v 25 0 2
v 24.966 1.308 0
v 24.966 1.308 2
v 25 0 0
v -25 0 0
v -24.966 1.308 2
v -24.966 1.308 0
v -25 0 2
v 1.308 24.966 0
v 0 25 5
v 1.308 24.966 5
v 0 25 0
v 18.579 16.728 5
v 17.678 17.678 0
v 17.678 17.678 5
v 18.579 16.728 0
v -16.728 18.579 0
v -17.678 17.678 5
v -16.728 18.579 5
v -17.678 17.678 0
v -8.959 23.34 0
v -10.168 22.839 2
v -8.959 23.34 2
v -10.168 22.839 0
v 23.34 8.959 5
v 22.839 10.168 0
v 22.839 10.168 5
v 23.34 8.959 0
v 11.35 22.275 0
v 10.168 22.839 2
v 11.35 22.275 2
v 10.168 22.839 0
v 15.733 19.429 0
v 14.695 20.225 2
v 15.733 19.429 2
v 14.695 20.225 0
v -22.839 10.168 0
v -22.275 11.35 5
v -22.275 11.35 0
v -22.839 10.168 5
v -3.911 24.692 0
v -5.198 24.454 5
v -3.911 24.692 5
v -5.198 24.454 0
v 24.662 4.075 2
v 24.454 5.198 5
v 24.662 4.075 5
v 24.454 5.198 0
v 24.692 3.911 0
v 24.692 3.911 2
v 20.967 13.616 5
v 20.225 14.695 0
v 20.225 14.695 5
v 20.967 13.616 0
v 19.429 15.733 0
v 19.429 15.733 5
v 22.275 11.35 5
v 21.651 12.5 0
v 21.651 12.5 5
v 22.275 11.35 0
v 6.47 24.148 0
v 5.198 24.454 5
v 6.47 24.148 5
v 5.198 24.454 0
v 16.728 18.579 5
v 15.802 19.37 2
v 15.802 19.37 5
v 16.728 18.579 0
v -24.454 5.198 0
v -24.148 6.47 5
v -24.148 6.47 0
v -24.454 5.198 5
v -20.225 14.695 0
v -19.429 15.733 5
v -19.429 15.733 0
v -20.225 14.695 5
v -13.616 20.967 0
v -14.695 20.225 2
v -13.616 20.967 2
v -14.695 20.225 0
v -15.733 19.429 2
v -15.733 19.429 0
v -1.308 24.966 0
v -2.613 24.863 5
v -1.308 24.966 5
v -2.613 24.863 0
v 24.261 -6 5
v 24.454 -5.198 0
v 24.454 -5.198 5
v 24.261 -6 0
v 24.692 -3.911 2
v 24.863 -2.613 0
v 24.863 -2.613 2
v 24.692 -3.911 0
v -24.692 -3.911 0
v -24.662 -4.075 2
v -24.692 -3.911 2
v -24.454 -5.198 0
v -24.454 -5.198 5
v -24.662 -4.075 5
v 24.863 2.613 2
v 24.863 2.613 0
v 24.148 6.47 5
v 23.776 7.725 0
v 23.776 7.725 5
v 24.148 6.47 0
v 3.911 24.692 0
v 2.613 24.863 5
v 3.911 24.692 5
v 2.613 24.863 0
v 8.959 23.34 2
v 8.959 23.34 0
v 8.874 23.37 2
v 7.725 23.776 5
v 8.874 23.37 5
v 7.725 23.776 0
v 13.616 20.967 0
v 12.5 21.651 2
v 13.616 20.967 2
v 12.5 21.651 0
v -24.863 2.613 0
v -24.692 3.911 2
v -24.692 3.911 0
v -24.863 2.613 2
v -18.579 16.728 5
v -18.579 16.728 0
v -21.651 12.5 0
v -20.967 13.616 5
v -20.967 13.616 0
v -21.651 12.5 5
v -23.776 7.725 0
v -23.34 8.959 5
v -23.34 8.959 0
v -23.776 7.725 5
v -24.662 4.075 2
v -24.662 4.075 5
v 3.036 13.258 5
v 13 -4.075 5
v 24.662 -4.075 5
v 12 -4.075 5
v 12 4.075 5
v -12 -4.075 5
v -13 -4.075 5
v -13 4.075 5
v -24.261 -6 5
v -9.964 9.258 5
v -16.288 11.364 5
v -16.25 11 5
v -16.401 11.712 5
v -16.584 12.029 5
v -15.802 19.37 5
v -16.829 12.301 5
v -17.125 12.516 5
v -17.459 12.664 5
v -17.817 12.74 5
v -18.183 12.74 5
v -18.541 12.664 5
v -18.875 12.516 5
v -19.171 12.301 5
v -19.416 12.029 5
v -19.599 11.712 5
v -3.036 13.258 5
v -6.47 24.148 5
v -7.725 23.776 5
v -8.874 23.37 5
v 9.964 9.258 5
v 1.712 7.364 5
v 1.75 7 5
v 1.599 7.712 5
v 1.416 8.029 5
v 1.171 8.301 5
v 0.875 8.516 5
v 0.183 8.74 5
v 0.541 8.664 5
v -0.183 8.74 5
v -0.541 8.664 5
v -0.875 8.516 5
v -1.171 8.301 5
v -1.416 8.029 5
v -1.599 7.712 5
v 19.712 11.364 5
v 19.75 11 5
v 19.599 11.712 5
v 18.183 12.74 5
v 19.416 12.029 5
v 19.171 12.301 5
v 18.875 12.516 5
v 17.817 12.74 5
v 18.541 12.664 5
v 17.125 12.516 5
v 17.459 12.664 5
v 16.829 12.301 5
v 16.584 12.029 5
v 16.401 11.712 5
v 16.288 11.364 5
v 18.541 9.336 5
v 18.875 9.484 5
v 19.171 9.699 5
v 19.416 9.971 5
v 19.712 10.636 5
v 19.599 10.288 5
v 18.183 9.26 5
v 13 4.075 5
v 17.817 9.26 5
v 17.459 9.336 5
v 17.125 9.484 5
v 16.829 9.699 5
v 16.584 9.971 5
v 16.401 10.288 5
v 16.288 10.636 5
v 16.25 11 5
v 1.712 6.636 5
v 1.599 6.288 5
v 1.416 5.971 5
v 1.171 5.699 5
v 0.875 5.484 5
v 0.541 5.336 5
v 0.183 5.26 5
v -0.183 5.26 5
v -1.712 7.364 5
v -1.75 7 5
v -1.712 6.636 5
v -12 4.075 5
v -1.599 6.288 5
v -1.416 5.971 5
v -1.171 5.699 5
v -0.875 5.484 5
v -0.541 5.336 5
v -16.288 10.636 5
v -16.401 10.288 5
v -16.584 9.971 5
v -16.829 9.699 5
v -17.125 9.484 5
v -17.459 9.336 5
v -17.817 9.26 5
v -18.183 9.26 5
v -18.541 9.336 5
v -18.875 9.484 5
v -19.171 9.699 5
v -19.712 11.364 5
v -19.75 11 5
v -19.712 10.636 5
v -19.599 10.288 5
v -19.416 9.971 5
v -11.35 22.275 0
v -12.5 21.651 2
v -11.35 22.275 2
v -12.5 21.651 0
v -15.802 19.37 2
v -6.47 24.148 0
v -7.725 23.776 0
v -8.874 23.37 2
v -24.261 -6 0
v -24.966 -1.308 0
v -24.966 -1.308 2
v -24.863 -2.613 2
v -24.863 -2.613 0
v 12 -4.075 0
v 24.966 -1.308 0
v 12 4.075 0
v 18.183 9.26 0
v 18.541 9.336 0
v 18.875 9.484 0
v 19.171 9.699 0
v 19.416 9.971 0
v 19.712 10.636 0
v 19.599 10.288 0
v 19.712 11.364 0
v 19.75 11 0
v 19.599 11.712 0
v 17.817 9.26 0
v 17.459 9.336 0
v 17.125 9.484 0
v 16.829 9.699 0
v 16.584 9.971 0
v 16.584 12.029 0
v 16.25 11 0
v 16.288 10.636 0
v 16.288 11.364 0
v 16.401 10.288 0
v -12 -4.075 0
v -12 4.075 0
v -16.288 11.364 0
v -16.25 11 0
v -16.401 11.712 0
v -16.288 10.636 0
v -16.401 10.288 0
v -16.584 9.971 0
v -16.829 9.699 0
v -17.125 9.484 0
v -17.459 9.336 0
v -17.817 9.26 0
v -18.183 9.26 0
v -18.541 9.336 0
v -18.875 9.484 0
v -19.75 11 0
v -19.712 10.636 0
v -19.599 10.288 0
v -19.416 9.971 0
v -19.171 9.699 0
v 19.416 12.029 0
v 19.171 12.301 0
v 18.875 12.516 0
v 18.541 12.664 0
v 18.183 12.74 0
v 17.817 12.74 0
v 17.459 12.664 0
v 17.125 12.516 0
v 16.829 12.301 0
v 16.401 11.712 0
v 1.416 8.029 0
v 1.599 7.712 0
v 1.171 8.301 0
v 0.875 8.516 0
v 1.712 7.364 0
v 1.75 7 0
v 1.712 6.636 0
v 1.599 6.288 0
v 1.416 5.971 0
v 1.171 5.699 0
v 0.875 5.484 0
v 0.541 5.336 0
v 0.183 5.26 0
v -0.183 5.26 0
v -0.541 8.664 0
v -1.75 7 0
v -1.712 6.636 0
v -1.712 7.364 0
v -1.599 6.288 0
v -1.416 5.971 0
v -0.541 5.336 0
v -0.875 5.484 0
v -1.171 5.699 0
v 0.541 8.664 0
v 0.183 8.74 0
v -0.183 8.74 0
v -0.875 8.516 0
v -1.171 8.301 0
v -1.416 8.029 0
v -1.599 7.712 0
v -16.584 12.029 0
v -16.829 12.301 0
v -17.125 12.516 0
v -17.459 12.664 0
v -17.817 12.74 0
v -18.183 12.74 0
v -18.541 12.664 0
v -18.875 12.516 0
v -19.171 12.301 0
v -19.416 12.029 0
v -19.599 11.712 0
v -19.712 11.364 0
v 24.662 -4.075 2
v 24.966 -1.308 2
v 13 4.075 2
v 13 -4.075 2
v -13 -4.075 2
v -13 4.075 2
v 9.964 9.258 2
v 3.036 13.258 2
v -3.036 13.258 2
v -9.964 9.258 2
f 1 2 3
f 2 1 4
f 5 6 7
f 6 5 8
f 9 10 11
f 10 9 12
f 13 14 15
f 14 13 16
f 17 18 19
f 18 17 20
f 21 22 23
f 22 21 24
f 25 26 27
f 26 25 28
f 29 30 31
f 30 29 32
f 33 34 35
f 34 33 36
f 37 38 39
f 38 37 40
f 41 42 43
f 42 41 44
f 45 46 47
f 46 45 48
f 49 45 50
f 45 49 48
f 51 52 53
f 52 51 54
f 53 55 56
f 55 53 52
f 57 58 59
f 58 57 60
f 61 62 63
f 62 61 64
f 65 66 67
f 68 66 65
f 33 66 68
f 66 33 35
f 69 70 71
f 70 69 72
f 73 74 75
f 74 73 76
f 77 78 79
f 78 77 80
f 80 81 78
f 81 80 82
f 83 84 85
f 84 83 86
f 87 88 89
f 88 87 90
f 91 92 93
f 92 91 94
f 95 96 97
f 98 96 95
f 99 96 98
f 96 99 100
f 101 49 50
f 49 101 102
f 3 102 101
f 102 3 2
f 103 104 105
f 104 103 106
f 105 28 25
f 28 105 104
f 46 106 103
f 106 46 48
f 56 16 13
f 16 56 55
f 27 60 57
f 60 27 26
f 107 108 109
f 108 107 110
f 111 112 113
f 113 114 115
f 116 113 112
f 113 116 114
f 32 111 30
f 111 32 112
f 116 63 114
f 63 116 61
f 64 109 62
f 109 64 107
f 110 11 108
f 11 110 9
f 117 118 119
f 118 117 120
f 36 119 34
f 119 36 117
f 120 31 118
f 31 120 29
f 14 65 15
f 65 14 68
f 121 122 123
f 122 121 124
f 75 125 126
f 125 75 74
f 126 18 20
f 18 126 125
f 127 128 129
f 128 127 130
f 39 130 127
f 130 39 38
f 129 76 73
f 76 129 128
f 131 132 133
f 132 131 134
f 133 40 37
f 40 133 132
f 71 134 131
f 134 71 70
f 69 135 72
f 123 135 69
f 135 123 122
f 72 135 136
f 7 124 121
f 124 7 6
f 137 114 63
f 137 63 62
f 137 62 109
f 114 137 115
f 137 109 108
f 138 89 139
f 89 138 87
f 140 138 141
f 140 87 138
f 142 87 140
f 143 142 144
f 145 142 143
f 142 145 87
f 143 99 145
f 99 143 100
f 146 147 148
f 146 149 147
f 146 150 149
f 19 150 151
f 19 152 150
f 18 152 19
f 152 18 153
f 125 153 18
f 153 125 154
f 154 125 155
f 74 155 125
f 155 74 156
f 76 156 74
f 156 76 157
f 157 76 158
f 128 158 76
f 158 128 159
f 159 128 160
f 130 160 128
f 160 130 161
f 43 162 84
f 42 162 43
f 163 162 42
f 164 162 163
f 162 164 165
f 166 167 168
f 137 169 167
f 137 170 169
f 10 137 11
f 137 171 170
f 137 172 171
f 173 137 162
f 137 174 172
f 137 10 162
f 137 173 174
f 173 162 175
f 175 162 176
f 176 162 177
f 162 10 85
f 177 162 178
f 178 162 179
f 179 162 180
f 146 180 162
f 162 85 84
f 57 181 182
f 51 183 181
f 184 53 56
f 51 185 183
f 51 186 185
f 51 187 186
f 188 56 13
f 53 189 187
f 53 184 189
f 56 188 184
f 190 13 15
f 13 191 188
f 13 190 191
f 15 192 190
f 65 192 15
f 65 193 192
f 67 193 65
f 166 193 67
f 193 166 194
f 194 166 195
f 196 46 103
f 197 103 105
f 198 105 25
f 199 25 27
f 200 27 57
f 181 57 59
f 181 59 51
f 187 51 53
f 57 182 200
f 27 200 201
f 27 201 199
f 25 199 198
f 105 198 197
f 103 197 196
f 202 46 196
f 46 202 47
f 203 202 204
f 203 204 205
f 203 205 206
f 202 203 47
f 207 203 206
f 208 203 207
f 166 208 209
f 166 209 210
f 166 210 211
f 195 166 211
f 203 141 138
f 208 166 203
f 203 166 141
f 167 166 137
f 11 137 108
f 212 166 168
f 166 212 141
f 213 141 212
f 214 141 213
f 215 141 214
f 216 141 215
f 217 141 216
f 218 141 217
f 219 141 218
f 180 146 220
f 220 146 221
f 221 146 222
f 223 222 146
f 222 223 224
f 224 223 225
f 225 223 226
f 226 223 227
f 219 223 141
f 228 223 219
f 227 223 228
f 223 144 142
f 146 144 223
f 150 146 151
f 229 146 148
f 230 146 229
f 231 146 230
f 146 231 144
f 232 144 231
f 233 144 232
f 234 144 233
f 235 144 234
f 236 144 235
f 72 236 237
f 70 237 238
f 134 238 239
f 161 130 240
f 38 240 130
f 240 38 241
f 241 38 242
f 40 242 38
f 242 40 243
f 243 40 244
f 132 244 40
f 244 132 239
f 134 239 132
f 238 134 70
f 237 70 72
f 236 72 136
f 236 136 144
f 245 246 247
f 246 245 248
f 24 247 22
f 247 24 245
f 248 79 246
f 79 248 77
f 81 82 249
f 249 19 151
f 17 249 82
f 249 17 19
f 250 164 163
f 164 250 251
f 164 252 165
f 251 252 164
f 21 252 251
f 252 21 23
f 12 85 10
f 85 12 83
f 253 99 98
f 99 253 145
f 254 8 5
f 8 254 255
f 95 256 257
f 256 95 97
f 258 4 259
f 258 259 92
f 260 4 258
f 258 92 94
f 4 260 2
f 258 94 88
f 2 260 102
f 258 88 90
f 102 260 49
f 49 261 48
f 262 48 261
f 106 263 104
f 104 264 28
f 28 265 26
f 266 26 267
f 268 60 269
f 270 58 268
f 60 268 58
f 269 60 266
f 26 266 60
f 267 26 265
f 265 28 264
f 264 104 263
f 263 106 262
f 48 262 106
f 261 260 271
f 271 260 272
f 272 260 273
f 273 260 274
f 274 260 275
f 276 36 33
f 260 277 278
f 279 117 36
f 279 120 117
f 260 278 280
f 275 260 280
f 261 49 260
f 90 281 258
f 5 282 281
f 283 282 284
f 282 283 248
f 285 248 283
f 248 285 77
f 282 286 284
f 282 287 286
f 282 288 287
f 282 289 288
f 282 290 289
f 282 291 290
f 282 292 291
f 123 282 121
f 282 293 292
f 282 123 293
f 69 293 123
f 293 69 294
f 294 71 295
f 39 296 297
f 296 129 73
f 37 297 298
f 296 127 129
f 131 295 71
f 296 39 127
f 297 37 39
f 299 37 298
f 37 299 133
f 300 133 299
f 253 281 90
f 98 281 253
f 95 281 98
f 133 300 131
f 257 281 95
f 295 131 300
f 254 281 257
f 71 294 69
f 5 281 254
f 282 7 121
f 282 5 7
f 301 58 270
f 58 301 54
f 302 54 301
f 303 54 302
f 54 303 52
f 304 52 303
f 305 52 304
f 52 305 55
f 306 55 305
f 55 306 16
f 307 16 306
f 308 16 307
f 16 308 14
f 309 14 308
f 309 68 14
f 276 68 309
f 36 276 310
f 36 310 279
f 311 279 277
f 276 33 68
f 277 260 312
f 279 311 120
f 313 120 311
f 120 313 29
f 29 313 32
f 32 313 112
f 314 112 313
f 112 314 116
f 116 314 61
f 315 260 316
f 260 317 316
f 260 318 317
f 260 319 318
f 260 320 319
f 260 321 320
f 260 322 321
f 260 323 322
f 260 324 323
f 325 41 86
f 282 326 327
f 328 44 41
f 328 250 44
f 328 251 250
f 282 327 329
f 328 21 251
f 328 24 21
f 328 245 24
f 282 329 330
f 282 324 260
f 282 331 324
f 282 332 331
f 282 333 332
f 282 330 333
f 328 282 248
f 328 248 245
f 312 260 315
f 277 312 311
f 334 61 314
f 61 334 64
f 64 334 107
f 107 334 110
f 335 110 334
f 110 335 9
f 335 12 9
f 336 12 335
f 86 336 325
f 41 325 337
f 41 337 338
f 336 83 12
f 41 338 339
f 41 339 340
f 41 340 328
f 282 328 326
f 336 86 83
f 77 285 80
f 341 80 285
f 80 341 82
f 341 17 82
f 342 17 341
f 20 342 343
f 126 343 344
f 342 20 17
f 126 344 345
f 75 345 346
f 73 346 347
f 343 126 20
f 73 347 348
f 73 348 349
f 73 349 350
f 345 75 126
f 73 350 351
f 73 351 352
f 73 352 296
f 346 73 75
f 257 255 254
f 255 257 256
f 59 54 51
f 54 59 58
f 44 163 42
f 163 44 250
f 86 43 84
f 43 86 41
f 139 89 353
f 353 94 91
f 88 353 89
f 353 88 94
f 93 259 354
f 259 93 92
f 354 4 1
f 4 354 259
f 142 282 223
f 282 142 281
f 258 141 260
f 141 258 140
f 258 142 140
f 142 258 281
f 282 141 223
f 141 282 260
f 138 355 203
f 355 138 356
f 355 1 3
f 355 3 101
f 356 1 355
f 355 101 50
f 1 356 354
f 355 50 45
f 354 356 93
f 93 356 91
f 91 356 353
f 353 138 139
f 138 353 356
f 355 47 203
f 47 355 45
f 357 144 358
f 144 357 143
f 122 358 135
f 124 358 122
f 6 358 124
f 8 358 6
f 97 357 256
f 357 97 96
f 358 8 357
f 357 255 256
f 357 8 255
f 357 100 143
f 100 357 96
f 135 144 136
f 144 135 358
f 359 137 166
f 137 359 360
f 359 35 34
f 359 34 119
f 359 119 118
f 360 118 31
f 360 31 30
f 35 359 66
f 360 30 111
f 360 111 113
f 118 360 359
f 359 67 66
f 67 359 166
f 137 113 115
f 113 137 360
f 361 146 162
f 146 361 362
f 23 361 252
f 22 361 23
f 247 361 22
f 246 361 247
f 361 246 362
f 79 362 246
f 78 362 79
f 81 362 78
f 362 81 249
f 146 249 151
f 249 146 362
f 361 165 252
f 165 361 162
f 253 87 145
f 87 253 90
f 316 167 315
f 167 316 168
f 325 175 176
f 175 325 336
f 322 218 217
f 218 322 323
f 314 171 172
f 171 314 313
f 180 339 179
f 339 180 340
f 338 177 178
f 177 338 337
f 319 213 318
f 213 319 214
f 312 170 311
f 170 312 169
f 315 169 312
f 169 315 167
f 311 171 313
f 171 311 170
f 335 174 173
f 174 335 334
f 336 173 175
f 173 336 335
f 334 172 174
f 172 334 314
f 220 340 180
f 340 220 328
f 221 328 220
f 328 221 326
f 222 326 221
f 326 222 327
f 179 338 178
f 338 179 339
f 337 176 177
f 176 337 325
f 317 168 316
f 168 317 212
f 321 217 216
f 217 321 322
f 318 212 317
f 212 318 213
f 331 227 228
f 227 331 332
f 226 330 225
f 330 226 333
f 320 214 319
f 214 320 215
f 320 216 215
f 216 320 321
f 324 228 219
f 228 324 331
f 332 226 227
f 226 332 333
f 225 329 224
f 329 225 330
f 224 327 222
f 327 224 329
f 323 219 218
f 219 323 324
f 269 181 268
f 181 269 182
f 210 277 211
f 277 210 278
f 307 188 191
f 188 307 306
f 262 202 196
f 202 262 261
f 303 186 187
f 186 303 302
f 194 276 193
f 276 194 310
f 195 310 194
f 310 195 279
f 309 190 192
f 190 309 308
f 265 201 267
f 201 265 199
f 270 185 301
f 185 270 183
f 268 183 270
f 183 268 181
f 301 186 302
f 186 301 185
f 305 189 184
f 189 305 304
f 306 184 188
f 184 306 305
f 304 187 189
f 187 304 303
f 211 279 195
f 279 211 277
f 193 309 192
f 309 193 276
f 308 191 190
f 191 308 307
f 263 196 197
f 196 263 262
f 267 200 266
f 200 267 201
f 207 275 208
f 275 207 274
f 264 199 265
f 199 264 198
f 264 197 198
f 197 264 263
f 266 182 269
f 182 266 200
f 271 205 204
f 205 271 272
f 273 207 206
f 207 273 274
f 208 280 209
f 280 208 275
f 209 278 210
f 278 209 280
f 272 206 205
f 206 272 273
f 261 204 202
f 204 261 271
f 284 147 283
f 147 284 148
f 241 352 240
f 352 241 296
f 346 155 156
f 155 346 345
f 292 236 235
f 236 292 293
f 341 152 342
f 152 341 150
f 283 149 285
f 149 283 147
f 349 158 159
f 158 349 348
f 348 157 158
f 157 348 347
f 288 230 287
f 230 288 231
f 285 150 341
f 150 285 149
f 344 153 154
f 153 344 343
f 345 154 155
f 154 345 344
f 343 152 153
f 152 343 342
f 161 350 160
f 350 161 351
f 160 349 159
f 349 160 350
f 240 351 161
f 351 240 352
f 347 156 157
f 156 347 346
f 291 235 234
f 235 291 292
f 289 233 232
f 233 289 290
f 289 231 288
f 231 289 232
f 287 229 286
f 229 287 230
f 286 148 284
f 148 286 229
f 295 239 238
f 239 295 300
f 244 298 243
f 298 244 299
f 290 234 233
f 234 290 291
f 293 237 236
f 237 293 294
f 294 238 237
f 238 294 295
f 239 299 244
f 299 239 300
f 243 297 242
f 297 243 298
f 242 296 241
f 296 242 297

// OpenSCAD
difference(){
cylinder(d=50,h=5,$fn=120);
cube([24,8.15,12],center=true);
translate([25,0,8])cube([24,8.15,12],center=true);
translate([-25,0,8])cube([24,8.15,12],center=true);
rotate([0,0,60])translate([25,0,8])
cube([24,8,12],center=true);
rotate([0,0,-60])translate([-25,0,8])
cube([24,8,12],center=true);
translate([0,-30,0])cube([54,48,12],center=true);
translate([0,7,-1])cylinder(d=3.5,h=10,$fn=30);
translate([18,11,-1])cylinder(d=3.5,h=10,$fn=30);
translate([-18,11,-1])cylinder(d=3.5,h=10,$fn=30);
}
